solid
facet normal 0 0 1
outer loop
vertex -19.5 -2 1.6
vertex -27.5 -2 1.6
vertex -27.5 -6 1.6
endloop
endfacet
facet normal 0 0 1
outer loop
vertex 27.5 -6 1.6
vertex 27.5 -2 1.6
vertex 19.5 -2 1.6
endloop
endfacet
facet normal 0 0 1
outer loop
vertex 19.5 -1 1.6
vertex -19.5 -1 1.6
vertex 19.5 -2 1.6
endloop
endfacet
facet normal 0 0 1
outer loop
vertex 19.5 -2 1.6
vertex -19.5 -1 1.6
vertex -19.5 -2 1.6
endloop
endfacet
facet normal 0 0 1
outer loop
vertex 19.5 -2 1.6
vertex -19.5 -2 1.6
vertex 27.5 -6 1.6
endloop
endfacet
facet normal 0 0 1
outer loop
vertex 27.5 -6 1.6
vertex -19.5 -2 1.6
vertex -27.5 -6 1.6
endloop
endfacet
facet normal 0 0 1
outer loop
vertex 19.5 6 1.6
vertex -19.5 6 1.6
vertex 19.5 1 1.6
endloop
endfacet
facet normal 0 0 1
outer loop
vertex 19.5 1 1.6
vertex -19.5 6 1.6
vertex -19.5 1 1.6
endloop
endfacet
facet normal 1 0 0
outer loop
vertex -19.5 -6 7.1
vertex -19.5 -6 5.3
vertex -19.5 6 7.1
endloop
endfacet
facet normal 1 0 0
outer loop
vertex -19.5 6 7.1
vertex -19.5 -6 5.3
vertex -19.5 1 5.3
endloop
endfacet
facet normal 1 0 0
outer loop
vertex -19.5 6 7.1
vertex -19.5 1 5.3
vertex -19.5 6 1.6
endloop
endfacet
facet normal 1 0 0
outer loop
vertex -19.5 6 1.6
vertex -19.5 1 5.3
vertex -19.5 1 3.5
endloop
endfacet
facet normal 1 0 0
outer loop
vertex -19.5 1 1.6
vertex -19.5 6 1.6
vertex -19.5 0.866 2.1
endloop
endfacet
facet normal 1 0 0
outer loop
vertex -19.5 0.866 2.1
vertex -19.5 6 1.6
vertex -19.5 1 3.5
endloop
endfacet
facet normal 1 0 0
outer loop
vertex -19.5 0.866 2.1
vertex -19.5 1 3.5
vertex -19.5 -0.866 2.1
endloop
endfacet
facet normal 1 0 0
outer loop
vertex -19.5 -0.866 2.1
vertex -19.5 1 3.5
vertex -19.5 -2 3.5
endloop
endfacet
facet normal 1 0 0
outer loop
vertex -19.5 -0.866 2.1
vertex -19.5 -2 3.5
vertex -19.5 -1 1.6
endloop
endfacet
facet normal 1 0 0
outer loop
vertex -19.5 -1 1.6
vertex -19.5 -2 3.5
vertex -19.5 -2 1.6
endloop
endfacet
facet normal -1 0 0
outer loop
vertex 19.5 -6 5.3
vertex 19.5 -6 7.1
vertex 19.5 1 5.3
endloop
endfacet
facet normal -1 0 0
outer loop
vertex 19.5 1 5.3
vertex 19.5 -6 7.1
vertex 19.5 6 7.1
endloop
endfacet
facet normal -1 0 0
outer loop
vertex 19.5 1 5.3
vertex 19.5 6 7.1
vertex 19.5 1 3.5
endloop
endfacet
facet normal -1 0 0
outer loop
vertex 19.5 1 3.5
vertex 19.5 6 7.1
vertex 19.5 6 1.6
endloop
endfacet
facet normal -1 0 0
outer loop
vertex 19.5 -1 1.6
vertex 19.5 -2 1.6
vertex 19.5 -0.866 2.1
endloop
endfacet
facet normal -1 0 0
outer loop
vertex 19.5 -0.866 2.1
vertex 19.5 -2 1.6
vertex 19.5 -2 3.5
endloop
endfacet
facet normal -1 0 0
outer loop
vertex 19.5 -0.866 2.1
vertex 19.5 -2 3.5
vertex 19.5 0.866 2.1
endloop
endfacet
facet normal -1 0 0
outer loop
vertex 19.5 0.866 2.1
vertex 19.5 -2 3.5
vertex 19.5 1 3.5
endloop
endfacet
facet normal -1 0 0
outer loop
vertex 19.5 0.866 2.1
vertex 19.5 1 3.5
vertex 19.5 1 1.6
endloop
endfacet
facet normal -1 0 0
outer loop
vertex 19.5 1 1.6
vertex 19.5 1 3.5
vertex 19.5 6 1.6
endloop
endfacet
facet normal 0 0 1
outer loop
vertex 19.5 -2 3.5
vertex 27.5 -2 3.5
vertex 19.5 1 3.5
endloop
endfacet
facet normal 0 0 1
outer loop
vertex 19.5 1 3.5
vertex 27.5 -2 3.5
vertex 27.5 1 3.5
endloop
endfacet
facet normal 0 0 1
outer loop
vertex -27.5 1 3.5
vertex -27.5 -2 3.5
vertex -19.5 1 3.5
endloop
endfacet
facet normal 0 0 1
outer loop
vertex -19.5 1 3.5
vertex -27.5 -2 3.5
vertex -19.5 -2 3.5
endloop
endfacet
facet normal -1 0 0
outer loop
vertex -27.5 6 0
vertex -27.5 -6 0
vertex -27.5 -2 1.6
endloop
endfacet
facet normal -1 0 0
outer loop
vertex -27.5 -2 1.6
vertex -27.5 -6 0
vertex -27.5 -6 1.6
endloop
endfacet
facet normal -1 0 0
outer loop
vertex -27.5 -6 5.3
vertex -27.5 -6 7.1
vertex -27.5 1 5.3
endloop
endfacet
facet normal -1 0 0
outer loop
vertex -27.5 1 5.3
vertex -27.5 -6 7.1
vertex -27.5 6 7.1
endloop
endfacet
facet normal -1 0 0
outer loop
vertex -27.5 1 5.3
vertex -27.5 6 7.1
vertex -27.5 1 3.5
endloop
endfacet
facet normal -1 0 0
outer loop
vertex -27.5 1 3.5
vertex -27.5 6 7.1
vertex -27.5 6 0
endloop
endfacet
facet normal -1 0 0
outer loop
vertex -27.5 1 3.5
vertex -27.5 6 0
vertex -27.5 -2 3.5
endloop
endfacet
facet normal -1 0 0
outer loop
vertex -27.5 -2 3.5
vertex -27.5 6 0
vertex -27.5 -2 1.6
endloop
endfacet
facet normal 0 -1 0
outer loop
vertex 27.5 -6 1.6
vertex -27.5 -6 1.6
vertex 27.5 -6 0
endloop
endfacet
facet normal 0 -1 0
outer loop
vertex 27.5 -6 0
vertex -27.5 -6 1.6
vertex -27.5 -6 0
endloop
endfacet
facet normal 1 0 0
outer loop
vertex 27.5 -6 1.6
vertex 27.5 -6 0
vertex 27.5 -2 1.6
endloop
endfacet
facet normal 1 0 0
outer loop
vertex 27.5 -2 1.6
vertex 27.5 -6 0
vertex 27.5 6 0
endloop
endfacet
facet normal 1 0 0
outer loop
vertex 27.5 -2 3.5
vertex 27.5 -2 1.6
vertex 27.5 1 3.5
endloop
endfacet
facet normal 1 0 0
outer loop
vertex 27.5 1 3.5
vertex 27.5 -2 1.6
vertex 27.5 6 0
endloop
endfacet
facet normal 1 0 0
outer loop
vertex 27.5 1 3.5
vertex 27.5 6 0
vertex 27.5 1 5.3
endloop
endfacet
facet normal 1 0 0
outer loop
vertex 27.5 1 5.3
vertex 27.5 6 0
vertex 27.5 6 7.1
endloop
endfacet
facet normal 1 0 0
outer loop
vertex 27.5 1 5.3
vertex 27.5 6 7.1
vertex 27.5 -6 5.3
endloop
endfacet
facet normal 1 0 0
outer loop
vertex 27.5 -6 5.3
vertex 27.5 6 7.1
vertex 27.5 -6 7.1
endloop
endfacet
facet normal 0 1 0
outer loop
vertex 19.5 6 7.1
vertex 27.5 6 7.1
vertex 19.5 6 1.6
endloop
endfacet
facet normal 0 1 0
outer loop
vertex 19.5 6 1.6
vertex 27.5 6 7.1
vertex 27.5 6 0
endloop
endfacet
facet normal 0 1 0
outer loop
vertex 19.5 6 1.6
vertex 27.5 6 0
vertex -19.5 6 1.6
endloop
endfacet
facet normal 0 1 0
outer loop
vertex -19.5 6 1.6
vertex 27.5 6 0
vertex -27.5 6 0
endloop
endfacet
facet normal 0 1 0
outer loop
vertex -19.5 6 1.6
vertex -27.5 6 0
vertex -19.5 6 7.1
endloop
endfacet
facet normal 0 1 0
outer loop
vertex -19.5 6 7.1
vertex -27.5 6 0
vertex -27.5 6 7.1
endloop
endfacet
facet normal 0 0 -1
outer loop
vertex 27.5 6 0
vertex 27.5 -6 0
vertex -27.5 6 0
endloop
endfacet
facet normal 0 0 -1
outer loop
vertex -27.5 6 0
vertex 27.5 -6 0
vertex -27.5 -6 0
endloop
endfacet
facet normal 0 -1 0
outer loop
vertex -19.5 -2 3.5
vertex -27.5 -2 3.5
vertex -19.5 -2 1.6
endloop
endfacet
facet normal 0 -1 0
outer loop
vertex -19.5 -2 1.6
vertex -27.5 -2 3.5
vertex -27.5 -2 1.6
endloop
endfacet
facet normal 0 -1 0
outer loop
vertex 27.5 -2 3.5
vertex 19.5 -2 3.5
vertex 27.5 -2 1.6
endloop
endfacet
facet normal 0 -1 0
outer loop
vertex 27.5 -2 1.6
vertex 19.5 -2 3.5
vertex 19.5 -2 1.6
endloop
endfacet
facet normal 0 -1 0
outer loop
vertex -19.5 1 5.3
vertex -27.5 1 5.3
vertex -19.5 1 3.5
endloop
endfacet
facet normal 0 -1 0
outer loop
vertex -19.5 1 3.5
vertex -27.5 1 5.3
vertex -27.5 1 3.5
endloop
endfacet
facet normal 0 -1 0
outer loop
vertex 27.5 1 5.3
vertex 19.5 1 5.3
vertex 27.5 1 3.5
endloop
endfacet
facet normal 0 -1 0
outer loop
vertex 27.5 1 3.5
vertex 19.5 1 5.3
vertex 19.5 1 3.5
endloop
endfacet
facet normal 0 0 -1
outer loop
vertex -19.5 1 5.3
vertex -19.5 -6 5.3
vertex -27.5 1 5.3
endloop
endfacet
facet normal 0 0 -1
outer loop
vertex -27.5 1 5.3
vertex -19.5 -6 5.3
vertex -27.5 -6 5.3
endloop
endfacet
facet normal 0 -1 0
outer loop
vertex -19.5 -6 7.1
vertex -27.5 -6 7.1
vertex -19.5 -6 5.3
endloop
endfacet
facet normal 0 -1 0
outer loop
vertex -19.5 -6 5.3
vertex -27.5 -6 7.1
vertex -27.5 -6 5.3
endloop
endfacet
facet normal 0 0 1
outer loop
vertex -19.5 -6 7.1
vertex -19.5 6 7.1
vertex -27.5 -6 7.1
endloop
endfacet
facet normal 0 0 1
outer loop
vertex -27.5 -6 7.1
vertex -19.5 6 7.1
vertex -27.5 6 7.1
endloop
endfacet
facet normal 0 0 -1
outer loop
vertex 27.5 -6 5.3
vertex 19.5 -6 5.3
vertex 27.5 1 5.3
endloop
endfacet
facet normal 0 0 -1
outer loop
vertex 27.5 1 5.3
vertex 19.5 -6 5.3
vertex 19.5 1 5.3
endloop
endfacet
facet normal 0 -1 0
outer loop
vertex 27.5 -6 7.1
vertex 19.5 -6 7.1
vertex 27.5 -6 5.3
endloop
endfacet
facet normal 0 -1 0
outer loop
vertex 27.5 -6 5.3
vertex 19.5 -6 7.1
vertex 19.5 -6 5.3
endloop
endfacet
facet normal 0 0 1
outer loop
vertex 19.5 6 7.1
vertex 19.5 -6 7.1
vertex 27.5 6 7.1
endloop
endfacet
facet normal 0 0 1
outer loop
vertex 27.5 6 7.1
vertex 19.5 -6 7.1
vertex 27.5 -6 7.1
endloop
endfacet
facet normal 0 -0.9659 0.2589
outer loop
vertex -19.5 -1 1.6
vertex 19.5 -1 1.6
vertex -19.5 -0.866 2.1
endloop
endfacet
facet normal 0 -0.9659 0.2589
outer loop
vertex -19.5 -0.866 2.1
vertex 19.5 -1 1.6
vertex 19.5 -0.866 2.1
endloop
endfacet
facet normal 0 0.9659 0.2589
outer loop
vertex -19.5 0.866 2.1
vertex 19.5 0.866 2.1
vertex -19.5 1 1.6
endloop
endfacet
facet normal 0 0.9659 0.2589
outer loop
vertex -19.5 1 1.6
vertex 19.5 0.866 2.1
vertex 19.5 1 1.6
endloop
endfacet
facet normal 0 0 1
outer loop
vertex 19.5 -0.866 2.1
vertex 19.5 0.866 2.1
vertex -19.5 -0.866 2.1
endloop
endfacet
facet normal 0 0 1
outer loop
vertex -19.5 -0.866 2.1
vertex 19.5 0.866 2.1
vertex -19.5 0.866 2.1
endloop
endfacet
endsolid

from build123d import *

# Parameters (mm, degrees)
SKETCH1_W           = 55
SKETCH1_H           = 12
BOSS_EXTRUDE1_DEPTH = 1.6
SKETCH2_W           = 8
SKETCH2_H           = 8
BOSS_EXTRUDE2_DEPTH = 1.9
SKETCH3_W           = 8
SKETCH3_H           = 5
BOSS_EXTRUDE3_DEPTH = 1.8
SKETCH4_W           = 8
SKETCH4_H           = 12
BOSS_EXTRUDE6_DEPTH = 1.8
SKETCH6_W           = 55
SKETCH6_H           = 2
BOSS_EXTRUDE7_DEPTH = 0.5
BOSS_EXTRUDE7_TAPER = 15


with BuildPart() as part:
    # Sketch1 → Boss-Extrude1 (new body)
    with BuildSketch(Plane.XY):
        Rectangle(SKETCH1_W, SKETCH1_H)
    extrude(amount=BOSS_EXTRUDE1_DEPTH)

    # Sketch2 → Boss-Extrude2 (add)
    with BuildSketch(Plane.XY.offset(1.6)):
        with Locations((-23.5, 2)):
            Rectangle(SKETCH2_W, SKETCH2_H)
        with Locations((23.5, 2)):
            Rectangle(SKETCH2_W, SKETCH2_H)
    extrude(amount=BOSS_EXTRUDE2_DEPTH)

    # Sketch3 → Boss-Extrude3 (add)
    with BuildSketch(Plane.XY.offset(3.5)):
        with Locations((-23.5, 3.5)):
            Rectangle(SKETCH3_W, SKETCH3_H)
        with Locations((23.5, 3.5)):
            Rectangle(SKETCH3_W, SKETCH3_H)
    extrude(amount=BOSS_EXTRUDE3_DEPTH)

    # Sketch4 → Boss-Extrude6 (add)
    with BuildSketch(Plane.XY.offset(5.3)):
        with Locations((-23.5, 0)):
            Rectangle(SKETCH4_W, SKETCH4_H)
        with Locations((23.5, 0)):
            Rectangle(SKETCH4_W, SKETCH4_H)
    extrude(amount=BOSS_EXTRUDE6_DEPTH)

    # Sketch6 → Boss-Extrude7 (add)
    with BuildSketch(Plane.XY.offset(1.6)):
        Rectangle(SKETCH6_W, SKETCH6_H)
    extrude(amount=BOSS_EXTRUDE7_DEPTH, taper=BOSS_EXTRUDE7_TAPER)


solid = part.part
